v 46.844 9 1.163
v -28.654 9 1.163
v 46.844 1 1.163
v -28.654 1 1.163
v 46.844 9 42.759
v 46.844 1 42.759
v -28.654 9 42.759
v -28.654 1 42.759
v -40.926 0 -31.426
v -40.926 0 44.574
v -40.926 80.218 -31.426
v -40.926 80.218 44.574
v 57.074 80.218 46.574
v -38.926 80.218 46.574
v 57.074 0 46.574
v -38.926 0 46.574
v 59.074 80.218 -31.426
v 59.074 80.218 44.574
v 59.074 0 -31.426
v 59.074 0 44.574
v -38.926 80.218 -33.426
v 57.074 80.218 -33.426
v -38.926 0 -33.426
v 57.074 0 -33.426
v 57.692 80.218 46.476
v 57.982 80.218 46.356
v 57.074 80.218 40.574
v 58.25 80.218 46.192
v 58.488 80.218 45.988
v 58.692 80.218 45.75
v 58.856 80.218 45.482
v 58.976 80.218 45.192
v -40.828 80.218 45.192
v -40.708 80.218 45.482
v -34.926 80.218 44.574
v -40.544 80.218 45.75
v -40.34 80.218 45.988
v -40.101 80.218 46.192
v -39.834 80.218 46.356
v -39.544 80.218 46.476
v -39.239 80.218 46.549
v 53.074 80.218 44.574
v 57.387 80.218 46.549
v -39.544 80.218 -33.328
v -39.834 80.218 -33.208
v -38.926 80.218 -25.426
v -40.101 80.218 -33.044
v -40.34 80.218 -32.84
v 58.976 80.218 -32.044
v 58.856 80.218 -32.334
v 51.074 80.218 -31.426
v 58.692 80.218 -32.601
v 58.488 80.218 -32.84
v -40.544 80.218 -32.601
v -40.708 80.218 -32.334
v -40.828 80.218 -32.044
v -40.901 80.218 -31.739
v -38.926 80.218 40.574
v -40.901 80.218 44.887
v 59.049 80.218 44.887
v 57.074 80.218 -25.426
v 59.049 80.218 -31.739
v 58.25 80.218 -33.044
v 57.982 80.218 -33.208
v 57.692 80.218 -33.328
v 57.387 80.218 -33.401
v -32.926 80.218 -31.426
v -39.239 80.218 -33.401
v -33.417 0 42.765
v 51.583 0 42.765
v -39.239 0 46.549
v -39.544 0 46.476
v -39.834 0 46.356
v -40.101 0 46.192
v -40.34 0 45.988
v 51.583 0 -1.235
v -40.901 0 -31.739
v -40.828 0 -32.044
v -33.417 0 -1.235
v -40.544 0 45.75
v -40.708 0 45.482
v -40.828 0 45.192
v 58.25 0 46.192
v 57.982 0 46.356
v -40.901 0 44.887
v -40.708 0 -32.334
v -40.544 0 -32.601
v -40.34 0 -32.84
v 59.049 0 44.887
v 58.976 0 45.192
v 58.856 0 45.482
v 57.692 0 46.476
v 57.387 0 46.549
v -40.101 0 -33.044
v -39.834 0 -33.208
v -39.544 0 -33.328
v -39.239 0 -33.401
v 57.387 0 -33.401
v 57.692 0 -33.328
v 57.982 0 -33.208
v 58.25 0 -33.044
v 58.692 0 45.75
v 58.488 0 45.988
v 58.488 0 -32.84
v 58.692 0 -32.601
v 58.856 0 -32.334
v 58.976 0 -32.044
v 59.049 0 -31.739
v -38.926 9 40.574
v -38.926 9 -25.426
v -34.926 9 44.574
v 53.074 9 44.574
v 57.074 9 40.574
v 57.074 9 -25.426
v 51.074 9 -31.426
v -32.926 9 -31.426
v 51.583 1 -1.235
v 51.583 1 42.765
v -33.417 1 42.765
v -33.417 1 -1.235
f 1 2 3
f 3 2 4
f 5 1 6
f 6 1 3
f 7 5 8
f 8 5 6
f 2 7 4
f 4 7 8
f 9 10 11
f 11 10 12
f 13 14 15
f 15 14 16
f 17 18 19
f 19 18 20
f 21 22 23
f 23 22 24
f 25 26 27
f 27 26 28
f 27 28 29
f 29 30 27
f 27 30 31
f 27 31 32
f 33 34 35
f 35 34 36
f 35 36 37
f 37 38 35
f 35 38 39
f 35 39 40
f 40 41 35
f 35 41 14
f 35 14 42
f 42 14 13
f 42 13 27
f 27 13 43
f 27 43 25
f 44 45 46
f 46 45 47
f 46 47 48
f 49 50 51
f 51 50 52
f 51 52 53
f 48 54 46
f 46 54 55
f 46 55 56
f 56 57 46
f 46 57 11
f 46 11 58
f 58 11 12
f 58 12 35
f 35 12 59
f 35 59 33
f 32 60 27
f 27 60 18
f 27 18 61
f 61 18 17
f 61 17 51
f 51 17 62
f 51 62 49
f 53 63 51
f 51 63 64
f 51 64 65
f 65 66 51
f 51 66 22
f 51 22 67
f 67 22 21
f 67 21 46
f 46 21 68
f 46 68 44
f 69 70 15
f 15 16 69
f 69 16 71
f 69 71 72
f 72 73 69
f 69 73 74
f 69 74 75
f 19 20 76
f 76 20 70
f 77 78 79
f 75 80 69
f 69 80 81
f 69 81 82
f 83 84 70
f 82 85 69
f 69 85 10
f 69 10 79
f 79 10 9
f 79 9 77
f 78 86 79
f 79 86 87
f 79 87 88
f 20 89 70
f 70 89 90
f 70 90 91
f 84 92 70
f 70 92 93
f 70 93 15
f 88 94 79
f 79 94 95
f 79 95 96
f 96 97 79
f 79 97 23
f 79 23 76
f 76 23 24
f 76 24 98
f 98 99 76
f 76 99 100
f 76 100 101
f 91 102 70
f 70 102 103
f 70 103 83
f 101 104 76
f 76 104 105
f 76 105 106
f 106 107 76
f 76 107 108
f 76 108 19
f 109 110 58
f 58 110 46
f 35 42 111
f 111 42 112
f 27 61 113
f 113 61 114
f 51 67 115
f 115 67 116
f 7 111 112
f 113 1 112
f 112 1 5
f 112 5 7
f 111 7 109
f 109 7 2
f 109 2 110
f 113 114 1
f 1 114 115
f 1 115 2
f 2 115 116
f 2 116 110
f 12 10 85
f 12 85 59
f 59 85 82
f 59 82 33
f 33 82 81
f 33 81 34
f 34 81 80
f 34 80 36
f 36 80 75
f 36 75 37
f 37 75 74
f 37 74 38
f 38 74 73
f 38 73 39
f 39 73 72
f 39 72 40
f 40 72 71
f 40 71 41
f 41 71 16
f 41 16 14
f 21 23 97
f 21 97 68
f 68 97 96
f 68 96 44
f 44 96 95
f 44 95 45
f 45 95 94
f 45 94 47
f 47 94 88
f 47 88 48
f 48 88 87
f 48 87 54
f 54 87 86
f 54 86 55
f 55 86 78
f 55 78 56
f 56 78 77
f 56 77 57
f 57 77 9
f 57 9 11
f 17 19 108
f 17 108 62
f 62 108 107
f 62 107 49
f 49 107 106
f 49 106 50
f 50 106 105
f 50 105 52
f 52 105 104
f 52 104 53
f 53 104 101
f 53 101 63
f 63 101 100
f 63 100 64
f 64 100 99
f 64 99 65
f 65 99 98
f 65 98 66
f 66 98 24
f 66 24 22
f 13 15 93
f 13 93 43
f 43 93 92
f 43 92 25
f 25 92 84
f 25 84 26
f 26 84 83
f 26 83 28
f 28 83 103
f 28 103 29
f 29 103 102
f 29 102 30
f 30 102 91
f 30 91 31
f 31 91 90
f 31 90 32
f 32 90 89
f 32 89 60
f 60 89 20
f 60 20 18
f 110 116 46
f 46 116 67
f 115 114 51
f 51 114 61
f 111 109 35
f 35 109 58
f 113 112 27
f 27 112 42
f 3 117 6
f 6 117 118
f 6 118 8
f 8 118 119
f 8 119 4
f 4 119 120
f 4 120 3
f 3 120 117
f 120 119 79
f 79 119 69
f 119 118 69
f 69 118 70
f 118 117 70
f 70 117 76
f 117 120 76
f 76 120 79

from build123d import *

# Parameters (mm, degrees)
SKETCH1_W                 = 100
SKETCH1_H                 = 80
BOSS_EXTRUDE1_DEPTH       = 80.217571917
SHELL1_T                  = -2
SHELL1_THICKNESS_2_FACE_W = 76
SHELL1_THICKNESS_2_FACE_H = 96
SHELL1_THICKNESS_2_DEPTH  = 7
CUT_EXTRUDE2_DEPTH        = 180
FILLET3_R                 = 2
FILLET4_R                 = 2
CHAMFER2_SIZE             = 6
CHAMFER3_SIZE             = 6
CHAMFER4_SIZE             = 4
SKETCH4_W                 = 85
SKETCH4_H                 = 44
CUT_EXTRUDE3_DEPTH        = 1


with BuildPart() as part:
    # Sketch1 → Boss-Extrude1 (new body)
    with BuildSketch(Plane(origin=(0, 0, 0), x_dir=(1, 0, 0), z_dir=(0, 1, 0))):
        with Locations((9.074074074, -6.574074074)):
            Rectangle(SKETCH1_W, SKETCH1_H)
    extrude(amount=BOSS_EXTRUDE1_DEPTH)

    # Shell1
    shell1_openings = [part.faces().sort_by_distance(p)[0] for p in [
        (9.074074074, 80.217571917, 6.574074074),
    ]]
    offset(amount=SHELL1_T, openings=shell1_openings, kind=Kind.INTERSECTION)

    # Shell1 thickness 2 face (on inner face of the shell) → Shell1 thickness 2 (add)
    with BuildSketch(Plane(origin=(9.074074074, 2, 6.574074074), x_dir=(0, 0, -1), z_dir=(0, -1, 0))):
        Rectangle(SHELL1_THICKNESS_2_FACE_W, SHELL1_THICKNESS_2_FACE_H)
    extrude(amount=-SHELL1_THICKNESS_2_DEPTH)

    # Sketch3 → Cut-Extrude2 (cut)
    with BuildSketch(Plane(origin=(0, 80.217571917, 0), x_dir=(1, 0, 0), z_dir=(0, 1, 0))):
        Polygon((9.074074074, -1.163150467), (46.843833128, -1.163150467), (46.843833128, -42.758682986), (9.074074074, -42.758682986), (-28.653994459, -42.758682986), (-28.653994459, -1.163150467), align=None)
    extrude(amount=-CUT_EXTRUDE2_DEPTH, mode=Mode.SUBTRACT)

    # Fillet3
    fillet3_edges = [part.edges().sort_by_distance(p)[0] for p in [
        (-40.925925926, 40.108785958, 46.574074074),
    ]]
    fillet(fillet3_edges, radius=FILLET3_R)

    # Fillet4
    fillet4_edges = [part.edges().sort_by_distance(p)[0] for p in [
        (-40.925925926, 40.108785958, -33.425925926),
        (59.074074074, 40.108785958, -33.425925926),
        (59.074074074, 40.108785958, 46.574074074),
    ]]
    fillet(fillet4_edges, radius=FILLET4_R)

    # Chamfer2
    chamfer2_edges = [part.edges().sort_by_distance(p)[0] for p in [
        (-38.925925926, 44.608785958, -31.425925926),
    ]]
    chamfer(chamfer2_edges, length=CHAMFER2_SIZE)

    # Chamfer3
    chamfer3_edges = [part.edges().sort_by_distance(p)[0] for p in [
        (57.074074074, 44.608785958, -31.425925926),
    ]]
    chamfer(chamfer3_edges, length=CHAMFER3_SIZE)

    # Chamfer4
    chamfer4_edges = [part.edges().sort_by_distance(p)[0] for p in [
        (-38.925925926, 44.608785958, 44.574074074),
        (57.074074074, 44.608785958, 44.574074074),
    ]]
    chamfer(chamfer4_edges, length=CHAMFER4_SIZE)

    # Sketch4 → Cut-Extrude3 (cut)
    with BuildSketch(Plane.XZ):
        with Locations((9.08325413, 20.764850692)):
            Rectangle(SKETCH4_W, SKETCH4_H)
    extrude(amount=-CUT_EXTRUDE3_DEPTH, mode=Mode.SUBTRACT)


solid = part.part
